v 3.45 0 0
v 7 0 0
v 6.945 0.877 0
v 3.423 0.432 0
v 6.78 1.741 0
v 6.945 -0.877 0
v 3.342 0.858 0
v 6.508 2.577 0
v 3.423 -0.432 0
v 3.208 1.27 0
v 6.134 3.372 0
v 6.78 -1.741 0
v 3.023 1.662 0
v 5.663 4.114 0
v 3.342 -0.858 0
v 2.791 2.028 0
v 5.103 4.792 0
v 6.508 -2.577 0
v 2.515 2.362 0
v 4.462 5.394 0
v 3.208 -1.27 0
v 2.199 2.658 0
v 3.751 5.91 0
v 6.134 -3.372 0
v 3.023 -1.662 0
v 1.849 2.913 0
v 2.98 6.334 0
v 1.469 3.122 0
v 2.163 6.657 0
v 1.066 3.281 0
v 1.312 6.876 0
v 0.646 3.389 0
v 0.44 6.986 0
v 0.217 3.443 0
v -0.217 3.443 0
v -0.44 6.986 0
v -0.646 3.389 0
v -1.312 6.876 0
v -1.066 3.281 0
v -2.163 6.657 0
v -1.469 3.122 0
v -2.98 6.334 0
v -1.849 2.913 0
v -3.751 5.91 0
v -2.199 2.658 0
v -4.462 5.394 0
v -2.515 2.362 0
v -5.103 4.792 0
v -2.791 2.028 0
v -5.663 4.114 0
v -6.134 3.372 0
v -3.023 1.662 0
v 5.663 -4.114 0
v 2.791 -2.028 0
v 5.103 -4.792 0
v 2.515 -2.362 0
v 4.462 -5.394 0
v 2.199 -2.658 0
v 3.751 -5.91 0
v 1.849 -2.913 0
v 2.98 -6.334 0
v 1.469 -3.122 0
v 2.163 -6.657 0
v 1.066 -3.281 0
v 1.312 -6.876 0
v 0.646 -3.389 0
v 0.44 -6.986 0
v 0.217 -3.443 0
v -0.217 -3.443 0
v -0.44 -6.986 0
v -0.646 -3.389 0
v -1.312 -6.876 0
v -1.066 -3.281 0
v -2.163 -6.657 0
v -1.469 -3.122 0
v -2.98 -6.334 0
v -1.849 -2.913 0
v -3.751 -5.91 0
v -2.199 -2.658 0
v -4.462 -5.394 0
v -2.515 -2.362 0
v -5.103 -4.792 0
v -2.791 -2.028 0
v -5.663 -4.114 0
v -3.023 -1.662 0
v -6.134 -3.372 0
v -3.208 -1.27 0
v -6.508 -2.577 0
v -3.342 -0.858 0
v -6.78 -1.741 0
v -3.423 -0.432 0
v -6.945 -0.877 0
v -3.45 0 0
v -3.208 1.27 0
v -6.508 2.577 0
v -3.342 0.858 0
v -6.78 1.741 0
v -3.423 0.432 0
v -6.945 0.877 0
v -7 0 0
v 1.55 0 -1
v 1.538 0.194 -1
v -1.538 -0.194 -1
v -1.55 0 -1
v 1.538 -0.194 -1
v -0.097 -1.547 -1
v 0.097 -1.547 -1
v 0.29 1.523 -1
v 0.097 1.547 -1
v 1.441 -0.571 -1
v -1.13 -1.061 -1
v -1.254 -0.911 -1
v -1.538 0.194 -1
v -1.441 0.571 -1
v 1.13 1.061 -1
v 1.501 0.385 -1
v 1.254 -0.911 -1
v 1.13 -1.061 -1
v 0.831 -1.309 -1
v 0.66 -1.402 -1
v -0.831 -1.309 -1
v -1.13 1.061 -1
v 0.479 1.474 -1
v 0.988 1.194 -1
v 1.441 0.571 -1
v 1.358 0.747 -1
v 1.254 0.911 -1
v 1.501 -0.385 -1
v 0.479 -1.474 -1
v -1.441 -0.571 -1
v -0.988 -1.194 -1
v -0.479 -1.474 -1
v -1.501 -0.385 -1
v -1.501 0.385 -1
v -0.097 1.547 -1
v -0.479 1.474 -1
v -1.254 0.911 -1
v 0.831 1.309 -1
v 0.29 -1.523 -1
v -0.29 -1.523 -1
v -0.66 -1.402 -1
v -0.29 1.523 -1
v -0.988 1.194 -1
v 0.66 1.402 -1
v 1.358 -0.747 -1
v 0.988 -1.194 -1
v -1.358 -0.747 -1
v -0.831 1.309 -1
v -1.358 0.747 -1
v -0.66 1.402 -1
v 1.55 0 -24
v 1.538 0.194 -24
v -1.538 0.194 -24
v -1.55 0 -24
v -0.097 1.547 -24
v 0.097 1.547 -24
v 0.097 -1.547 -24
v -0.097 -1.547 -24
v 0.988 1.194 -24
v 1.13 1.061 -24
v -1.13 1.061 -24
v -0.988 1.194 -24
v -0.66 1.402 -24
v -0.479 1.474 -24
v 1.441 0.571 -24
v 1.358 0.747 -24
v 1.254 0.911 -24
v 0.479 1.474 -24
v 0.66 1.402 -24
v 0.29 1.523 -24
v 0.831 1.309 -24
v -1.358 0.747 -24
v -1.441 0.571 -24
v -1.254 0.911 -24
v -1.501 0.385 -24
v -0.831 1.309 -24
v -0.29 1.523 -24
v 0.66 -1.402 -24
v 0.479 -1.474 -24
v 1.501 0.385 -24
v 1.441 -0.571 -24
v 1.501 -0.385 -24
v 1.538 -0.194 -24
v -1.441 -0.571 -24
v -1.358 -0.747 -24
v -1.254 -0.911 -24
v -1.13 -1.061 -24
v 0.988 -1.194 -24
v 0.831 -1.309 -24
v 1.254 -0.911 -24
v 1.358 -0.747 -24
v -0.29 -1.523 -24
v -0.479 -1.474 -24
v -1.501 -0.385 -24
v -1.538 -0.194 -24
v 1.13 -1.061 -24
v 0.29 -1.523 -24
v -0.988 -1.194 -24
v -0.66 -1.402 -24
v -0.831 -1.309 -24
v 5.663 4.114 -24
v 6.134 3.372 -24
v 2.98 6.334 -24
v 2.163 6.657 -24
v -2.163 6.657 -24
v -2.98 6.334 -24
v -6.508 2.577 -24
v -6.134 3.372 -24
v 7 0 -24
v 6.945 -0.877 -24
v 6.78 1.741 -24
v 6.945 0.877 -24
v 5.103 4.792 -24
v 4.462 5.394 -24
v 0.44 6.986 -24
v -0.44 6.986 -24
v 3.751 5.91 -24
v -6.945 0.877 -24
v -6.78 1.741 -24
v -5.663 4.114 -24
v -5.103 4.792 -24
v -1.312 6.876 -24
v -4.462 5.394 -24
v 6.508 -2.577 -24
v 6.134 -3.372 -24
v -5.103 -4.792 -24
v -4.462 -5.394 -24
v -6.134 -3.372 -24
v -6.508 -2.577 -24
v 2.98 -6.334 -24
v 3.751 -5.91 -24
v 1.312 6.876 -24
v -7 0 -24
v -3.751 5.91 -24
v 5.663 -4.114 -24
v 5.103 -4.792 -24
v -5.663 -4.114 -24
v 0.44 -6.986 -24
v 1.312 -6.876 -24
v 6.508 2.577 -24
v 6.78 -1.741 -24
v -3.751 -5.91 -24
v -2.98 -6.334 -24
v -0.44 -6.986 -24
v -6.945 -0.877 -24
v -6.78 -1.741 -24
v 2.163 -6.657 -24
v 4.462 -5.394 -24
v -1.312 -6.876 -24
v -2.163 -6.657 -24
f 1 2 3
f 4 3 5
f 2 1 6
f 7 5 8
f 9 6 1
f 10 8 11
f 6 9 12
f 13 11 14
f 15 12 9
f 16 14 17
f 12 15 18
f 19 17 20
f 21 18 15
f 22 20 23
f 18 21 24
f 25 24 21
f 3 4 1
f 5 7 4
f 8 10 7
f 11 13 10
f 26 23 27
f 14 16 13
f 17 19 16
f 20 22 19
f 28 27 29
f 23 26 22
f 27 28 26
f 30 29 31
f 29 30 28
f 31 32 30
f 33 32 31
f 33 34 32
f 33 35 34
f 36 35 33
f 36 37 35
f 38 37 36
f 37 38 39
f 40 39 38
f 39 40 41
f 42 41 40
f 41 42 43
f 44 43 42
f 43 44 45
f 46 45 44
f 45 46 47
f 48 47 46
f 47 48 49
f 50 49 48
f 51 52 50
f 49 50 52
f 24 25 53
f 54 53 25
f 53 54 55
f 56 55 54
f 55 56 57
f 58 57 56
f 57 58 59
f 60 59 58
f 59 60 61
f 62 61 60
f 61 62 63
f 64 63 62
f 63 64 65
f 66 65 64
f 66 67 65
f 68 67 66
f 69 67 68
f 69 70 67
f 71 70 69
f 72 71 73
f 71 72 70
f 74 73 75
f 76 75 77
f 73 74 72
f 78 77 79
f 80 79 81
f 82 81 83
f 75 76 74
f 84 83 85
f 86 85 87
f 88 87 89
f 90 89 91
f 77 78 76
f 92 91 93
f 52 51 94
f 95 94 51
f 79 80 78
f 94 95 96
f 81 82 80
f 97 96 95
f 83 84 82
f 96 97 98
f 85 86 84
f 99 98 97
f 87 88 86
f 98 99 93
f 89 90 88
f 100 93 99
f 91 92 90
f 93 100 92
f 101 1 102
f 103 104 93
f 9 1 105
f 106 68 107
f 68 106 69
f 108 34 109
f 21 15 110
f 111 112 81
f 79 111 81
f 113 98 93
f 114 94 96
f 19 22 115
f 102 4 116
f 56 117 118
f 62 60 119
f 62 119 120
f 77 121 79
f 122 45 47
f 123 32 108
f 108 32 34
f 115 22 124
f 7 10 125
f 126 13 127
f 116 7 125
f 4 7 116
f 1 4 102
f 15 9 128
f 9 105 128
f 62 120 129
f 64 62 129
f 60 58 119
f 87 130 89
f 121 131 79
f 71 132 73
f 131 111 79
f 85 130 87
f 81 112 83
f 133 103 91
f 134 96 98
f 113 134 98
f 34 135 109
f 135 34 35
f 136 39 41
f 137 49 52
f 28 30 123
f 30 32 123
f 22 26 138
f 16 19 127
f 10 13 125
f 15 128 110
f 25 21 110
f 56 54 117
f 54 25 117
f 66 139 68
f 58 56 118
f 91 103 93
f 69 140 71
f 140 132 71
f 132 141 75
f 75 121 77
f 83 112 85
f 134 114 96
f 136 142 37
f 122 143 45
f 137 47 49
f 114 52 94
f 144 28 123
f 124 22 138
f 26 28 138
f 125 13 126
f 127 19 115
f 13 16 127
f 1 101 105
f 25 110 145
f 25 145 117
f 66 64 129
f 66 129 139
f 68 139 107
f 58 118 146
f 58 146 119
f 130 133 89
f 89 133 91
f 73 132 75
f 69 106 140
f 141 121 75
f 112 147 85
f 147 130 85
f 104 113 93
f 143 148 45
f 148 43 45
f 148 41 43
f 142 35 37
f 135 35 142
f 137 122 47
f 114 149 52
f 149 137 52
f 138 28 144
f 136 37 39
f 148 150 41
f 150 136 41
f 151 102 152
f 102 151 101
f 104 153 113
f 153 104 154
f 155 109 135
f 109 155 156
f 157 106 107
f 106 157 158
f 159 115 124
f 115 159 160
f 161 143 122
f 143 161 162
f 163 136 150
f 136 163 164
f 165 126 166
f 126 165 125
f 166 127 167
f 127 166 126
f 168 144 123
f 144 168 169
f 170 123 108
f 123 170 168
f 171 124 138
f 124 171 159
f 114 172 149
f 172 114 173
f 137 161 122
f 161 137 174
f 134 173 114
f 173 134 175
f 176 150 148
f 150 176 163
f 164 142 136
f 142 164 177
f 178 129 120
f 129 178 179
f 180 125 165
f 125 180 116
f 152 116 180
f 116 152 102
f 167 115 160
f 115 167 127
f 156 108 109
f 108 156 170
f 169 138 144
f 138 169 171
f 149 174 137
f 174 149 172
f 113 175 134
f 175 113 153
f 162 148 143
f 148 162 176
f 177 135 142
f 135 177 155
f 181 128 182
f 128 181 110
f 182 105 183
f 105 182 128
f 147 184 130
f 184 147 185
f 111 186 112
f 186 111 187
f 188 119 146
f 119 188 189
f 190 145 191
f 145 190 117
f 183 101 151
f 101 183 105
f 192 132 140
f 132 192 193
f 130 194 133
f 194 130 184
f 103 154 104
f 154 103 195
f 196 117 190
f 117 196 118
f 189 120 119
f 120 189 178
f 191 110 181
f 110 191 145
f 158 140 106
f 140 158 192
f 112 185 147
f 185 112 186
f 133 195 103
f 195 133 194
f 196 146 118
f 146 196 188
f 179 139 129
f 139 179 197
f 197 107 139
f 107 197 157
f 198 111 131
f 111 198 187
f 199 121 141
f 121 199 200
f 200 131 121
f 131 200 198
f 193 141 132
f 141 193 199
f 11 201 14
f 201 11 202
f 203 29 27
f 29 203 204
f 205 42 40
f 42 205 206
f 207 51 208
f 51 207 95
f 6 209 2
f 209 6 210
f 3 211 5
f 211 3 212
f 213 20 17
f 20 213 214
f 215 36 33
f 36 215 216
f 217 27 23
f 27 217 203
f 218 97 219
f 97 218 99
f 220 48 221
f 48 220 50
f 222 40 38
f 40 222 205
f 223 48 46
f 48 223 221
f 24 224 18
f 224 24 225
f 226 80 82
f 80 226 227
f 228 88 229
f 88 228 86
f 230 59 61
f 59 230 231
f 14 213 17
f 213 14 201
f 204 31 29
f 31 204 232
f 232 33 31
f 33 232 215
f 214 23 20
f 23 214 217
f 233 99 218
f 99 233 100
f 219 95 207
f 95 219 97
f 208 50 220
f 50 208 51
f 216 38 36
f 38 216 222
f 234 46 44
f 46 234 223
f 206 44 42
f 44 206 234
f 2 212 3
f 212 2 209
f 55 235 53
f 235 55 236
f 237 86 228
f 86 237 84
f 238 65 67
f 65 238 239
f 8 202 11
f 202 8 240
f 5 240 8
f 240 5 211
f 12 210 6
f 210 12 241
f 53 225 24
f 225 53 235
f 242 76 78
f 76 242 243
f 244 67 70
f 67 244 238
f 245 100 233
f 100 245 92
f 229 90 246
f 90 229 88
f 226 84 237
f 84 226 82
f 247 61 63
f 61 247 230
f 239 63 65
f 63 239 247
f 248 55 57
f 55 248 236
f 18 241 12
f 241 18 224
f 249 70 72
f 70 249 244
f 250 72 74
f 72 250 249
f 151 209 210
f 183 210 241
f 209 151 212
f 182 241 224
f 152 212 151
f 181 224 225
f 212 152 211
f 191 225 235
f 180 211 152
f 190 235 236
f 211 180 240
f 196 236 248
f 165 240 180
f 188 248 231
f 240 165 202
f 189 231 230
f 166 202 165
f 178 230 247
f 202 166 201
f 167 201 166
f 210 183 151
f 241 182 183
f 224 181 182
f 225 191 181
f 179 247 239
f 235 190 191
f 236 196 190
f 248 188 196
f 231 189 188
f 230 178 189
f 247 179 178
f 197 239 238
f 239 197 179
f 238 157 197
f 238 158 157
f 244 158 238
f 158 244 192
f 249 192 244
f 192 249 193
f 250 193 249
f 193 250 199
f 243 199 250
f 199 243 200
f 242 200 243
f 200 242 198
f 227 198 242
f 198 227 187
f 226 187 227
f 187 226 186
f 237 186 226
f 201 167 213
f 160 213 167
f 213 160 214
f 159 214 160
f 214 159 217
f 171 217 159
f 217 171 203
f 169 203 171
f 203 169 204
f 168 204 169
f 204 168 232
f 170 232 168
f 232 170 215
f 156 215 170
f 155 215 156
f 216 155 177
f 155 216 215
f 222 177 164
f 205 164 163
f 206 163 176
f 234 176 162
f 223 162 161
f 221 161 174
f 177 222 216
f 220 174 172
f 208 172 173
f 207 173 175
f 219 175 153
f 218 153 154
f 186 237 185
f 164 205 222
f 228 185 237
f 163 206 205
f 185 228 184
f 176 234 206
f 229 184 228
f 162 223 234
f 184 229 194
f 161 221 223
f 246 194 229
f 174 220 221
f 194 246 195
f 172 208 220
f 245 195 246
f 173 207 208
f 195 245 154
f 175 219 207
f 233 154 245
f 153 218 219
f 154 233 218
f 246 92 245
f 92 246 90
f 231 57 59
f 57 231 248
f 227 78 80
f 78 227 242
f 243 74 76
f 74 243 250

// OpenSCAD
$fn = 50;


difference() {
	union() {
		translate(v = [0, 0, -24.0000000000]) {
			cylinder(h = 24, r = 7.0000000000);
		}
	}
	union() {
		translate(v = [0, 0, 0]) {
			rotate(a = [0, 0, 0]) {
				difference() {
					union() {
						translate(v = [0, 0, -27.0000000000]) {
							cylinder(h = 27, r = 1.2500000000);
						}
						translate(v = [0, 0, -1.0000000000]) {
							cylinder(h = 1.0000000000, r1 = 1.5500000000, r2 = 3.4500000000);
						}
						translate(v = [0, 0, -27.0000000000]) {
							cylinder(h = 27, r = 1.5500000000);
						}
						translate(v = [0, 0, -27.0000000000]) {
							cylinder(h = 27, r = 1.2500000000);
						}
					}
					union();
				}
			}
		}
	}
}
